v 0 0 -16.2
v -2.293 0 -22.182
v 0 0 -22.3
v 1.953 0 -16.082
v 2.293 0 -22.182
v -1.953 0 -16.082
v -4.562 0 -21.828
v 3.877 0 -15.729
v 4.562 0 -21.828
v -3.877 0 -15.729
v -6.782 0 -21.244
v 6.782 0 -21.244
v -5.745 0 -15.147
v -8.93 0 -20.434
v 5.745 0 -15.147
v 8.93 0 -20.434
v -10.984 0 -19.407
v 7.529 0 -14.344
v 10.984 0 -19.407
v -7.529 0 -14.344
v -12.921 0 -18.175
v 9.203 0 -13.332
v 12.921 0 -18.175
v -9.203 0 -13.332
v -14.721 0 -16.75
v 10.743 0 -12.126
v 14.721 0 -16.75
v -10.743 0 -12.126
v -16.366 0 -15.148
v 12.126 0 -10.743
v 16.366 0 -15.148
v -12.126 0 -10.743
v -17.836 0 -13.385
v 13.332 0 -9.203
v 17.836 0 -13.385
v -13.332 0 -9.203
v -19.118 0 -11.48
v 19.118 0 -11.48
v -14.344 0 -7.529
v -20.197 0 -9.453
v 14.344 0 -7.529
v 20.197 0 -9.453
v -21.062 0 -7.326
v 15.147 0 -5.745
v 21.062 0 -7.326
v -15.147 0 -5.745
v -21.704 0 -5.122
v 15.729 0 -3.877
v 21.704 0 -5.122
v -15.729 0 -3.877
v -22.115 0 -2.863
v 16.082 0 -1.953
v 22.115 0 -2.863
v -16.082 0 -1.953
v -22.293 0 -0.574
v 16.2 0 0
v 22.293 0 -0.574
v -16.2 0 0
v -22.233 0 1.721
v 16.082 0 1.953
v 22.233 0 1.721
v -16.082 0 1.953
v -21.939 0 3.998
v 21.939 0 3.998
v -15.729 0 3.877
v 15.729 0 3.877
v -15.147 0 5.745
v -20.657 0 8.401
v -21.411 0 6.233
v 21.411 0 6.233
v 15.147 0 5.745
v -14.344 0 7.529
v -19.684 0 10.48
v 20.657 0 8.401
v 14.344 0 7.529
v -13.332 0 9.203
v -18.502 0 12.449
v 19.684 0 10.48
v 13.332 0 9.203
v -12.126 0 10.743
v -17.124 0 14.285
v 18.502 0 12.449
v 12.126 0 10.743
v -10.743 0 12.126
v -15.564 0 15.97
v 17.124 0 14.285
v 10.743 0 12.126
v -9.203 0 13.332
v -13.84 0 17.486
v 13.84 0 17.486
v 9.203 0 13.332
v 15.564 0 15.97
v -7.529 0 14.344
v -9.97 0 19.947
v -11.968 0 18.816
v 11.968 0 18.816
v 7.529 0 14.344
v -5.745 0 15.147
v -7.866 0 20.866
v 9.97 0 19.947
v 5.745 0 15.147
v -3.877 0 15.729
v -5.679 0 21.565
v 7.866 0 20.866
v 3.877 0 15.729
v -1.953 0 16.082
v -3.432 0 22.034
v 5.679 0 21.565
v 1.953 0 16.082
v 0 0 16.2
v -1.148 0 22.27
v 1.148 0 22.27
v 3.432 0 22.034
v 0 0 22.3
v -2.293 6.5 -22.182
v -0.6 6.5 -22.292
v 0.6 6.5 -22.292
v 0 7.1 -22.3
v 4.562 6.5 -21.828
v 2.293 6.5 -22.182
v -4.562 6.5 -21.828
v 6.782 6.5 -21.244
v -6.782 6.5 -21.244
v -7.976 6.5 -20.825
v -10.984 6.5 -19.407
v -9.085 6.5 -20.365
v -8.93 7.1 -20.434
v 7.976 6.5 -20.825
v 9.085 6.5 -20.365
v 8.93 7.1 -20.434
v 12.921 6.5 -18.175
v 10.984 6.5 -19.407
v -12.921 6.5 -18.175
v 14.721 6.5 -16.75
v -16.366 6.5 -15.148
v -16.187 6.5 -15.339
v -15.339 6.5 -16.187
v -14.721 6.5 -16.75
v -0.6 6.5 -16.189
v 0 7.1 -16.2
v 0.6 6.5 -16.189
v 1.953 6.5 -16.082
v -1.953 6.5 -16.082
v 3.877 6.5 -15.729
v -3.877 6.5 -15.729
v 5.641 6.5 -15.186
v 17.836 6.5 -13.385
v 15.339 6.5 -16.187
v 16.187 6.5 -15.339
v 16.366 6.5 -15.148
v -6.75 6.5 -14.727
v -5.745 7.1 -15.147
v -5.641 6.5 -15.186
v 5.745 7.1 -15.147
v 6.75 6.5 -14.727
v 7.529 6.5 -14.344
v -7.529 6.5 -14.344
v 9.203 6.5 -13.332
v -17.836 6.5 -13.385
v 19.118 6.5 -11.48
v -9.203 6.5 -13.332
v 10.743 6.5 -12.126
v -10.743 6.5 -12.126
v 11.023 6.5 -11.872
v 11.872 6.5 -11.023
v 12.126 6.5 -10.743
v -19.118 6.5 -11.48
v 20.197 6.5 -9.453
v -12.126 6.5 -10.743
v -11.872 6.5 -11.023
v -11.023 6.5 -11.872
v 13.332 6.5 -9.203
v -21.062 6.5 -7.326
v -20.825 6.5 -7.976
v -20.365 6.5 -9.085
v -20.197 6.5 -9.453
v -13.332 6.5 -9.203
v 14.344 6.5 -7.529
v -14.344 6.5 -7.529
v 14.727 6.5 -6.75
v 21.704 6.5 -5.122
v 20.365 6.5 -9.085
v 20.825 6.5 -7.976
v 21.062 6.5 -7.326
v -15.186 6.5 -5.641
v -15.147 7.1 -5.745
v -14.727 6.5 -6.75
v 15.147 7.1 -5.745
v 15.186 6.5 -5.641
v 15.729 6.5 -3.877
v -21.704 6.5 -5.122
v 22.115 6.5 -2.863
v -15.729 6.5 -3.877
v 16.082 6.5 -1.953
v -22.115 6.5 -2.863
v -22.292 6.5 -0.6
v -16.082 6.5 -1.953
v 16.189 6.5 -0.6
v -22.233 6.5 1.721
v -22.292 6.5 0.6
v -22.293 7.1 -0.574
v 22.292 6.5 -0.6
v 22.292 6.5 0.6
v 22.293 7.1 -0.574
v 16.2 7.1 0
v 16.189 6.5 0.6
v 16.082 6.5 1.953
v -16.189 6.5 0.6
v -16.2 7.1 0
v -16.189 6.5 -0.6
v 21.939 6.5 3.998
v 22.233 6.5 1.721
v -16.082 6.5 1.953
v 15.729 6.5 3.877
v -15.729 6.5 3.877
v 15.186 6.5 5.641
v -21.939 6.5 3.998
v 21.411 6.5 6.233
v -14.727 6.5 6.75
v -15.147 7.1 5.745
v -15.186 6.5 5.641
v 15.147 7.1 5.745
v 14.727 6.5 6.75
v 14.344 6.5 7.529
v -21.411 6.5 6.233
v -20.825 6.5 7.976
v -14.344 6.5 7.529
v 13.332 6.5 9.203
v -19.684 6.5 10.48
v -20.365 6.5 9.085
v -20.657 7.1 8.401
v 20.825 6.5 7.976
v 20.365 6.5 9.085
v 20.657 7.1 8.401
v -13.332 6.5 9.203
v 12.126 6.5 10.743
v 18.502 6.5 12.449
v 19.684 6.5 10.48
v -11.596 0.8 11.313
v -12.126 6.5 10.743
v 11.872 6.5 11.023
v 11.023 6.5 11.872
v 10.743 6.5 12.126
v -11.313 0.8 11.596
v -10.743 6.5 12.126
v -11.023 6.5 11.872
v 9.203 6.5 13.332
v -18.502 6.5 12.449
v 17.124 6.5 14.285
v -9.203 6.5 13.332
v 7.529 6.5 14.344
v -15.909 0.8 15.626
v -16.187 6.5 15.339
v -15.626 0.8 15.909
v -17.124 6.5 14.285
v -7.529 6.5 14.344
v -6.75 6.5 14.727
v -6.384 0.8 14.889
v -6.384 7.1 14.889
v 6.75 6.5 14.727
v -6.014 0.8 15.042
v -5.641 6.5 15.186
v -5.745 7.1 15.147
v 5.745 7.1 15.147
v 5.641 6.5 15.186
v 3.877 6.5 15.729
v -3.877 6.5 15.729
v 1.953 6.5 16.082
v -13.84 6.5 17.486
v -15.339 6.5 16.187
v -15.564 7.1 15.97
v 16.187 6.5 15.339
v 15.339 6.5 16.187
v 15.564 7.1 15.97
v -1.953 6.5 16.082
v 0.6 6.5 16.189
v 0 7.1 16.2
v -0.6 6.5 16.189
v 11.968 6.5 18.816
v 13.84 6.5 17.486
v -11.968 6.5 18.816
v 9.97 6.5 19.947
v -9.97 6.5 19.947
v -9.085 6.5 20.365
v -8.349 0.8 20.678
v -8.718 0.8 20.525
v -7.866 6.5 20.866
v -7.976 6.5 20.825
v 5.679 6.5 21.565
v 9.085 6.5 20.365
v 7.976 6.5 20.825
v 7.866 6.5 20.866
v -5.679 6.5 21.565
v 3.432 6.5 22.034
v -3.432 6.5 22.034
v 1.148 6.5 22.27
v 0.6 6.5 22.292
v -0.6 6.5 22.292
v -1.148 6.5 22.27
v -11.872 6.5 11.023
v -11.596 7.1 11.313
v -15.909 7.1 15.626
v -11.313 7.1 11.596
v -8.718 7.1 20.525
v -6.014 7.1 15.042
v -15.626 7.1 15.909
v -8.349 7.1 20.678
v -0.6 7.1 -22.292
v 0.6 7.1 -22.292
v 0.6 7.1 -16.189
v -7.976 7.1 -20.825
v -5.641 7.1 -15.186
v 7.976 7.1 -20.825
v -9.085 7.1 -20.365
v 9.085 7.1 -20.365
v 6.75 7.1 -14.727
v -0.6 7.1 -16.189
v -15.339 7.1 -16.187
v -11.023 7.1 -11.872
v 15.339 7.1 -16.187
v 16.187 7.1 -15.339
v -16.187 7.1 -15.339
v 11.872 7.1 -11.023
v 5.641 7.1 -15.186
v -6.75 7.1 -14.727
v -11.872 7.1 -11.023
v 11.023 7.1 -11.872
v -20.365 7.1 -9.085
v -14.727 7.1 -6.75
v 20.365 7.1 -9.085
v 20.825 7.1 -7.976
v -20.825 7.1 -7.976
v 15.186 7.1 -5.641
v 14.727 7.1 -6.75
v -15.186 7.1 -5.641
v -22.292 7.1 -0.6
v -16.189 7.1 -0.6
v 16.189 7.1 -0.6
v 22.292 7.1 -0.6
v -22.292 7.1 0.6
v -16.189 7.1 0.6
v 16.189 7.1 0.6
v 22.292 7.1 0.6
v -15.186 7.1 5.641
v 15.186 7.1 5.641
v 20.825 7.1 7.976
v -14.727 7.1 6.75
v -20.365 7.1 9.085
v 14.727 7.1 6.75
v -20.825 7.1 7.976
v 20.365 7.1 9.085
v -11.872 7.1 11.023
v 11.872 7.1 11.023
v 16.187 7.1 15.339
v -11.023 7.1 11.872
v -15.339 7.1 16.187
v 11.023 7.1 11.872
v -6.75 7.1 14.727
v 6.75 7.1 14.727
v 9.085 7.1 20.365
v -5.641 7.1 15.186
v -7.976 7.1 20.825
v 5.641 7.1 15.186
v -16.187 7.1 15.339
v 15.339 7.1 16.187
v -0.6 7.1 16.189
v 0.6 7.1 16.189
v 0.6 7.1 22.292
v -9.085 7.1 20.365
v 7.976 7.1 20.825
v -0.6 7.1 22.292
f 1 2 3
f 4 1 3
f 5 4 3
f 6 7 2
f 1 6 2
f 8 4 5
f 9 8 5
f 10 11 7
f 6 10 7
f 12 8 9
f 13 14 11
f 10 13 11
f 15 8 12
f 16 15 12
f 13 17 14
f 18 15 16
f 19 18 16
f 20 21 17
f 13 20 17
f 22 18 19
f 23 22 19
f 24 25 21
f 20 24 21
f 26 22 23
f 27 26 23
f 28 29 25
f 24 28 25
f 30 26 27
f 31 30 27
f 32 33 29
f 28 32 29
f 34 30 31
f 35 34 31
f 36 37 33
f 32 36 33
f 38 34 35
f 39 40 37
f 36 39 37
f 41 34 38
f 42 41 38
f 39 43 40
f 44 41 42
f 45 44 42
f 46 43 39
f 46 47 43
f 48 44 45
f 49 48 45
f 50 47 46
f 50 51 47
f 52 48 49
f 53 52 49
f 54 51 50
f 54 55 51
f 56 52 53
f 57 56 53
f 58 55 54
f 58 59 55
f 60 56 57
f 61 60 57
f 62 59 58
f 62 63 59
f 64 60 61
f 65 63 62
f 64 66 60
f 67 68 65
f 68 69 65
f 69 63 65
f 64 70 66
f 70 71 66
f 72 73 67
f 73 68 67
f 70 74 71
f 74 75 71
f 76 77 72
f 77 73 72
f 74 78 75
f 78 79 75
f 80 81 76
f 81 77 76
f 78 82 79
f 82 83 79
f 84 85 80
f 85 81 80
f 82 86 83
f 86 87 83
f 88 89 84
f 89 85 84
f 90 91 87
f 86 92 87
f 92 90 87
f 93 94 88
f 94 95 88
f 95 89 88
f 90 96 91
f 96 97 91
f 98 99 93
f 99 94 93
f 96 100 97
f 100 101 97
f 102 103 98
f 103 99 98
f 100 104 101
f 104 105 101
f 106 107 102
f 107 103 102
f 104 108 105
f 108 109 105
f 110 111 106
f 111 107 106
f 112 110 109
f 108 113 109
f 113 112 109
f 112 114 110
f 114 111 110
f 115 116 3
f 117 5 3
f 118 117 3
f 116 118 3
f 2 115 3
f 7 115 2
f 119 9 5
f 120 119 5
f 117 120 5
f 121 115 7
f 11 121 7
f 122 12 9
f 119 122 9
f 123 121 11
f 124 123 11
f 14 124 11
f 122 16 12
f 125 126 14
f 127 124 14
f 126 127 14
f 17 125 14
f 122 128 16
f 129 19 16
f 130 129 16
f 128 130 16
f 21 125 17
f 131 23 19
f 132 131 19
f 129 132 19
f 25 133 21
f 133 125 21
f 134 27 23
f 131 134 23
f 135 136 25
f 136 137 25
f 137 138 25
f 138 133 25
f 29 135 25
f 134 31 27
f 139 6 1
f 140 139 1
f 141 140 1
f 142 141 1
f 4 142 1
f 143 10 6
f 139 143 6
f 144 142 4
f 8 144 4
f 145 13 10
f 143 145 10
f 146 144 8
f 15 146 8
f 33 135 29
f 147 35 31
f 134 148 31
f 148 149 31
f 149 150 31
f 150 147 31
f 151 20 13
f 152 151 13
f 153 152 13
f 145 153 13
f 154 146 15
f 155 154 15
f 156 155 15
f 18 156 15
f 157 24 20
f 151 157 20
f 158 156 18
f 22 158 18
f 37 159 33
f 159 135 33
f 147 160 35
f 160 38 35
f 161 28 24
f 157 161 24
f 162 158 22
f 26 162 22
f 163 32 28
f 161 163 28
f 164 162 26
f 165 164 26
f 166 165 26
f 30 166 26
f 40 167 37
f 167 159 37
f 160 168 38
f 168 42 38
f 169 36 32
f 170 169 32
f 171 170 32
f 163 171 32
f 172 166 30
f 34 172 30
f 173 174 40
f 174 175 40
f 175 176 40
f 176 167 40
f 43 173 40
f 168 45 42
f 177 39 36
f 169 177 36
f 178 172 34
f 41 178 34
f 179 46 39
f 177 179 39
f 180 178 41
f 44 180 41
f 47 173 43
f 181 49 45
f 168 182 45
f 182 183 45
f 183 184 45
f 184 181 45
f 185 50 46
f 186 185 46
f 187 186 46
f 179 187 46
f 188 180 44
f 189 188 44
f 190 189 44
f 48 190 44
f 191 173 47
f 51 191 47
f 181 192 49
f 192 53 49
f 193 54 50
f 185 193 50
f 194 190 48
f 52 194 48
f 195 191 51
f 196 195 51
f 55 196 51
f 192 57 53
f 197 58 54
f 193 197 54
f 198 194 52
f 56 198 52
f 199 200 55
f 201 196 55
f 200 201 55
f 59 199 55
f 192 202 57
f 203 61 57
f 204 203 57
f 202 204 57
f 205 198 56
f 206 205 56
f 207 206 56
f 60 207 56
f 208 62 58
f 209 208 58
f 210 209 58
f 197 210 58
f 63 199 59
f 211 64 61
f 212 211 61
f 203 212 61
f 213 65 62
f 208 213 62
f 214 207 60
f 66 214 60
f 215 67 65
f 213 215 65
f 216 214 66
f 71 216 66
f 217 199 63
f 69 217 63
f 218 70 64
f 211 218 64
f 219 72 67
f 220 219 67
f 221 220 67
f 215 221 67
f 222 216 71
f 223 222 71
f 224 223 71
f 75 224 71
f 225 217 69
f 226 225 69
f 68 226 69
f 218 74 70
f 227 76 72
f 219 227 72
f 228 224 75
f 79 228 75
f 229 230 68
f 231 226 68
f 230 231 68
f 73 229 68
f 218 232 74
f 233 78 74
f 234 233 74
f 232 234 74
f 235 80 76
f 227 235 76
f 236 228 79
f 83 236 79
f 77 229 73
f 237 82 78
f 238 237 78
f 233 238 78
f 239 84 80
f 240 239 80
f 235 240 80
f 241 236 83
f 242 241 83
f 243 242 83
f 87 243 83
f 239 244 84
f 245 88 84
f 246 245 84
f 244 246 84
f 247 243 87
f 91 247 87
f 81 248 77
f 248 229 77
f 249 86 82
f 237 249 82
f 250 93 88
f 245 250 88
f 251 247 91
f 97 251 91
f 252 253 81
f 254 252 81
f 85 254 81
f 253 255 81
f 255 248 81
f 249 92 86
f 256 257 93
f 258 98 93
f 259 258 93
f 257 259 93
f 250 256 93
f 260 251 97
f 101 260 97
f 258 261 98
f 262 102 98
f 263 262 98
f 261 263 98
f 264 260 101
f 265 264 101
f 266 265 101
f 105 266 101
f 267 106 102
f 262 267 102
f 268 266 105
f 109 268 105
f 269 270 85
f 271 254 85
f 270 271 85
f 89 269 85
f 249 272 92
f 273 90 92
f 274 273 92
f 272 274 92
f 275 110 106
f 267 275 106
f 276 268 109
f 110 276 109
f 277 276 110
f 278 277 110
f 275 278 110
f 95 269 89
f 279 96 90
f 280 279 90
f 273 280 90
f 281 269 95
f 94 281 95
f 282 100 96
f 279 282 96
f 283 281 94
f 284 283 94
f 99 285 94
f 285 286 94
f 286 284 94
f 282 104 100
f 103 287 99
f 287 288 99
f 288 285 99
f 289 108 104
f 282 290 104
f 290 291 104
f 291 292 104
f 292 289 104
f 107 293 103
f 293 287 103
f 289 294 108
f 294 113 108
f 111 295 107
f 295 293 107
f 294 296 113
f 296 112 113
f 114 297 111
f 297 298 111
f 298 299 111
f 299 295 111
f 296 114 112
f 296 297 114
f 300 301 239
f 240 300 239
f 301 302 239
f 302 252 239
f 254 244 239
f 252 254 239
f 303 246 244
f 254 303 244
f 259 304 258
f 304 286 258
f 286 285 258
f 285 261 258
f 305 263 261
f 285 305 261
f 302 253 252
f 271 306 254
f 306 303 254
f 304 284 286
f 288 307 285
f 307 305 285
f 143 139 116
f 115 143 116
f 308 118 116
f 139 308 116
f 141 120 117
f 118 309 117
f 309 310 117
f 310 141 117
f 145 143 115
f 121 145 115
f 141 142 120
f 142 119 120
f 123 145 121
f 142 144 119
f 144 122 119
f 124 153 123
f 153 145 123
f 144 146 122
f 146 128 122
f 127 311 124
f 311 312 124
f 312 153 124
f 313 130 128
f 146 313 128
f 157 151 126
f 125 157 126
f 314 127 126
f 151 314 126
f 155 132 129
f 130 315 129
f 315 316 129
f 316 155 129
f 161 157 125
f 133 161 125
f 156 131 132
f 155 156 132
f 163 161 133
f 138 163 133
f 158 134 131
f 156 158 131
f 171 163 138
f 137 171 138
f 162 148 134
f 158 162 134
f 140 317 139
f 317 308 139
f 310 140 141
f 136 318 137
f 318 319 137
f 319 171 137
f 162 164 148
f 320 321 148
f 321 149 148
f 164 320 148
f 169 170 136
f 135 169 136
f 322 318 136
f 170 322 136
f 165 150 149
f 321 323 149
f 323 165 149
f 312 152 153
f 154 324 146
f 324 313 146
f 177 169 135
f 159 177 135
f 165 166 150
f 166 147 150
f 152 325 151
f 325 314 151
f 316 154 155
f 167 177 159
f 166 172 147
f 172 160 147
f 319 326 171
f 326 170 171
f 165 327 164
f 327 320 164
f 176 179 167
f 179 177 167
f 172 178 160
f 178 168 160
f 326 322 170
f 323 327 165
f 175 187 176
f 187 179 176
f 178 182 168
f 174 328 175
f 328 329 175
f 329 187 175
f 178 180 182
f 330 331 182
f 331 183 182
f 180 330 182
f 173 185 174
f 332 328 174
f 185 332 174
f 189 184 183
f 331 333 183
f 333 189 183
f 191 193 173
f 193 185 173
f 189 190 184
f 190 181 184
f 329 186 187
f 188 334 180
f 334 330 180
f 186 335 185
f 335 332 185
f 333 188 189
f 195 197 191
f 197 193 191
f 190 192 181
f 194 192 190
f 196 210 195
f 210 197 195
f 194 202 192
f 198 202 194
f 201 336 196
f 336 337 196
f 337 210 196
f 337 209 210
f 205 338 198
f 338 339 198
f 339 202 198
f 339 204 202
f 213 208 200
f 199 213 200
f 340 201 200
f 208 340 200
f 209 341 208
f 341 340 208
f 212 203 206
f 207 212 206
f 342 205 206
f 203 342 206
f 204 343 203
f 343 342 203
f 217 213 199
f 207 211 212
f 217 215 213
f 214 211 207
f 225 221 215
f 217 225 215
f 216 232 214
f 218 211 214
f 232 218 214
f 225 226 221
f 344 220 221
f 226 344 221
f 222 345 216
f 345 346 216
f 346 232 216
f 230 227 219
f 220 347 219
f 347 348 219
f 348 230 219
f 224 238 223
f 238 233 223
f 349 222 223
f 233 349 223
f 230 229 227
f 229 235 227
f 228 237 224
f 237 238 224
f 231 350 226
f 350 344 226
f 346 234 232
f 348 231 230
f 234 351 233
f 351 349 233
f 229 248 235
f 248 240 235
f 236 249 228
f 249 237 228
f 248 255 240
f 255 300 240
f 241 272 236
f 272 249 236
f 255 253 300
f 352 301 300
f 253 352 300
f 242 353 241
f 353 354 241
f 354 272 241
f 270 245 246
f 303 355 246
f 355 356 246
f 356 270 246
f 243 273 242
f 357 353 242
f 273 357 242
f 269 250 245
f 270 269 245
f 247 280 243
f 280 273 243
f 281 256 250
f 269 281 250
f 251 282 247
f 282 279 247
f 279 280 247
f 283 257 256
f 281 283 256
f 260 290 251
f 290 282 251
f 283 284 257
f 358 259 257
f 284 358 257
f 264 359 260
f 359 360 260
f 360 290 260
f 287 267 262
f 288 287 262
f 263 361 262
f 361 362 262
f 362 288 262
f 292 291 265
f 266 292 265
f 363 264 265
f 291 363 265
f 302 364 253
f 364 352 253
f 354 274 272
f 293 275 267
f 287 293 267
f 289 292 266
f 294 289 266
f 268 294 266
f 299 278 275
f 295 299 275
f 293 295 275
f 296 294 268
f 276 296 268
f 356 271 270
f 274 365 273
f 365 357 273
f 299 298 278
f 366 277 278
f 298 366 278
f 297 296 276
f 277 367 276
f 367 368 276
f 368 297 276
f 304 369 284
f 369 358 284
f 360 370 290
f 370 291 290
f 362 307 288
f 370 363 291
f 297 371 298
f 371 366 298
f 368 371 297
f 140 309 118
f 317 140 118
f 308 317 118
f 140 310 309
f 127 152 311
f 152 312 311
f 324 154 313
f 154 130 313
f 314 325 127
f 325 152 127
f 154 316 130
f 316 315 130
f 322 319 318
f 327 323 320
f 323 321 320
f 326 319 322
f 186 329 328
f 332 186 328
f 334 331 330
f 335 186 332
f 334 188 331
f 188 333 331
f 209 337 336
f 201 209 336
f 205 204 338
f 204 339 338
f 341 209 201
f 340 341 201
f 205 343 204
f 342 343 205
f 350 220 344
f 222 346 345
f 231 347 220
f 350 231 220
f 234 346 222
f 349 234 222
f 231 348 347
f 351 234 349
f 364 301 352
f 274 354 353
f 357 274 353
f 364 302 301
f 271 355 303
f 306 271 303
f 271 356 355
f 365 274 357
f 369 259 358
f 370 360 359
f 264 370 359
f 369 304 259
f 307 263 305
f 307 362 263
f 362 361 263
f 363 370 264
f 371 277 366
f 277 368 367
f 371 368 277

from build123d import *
from build123d.topology import SkipClean

# Parameters (mm, degrees)
SKETCH1_R           = 22.3
SKETCH1_R_2         = 16.2
BOSS_EXTRUDE1_DEPTH = 6.5
BOSS_EXTRUDE2_DEPTH = 0.6
CIRPATTERN1_COUNT   = 16
CUT_EXTRUDE1_START  = -6.3
CUT_EXTRUDE1_DEPTH  = 6.3


with BuildPart() as part:
    # Sketch1 → Boss-Extrude1 (new body)
    with BuildSketch(Plane(origin=(0, 0, 0), x_dir=(1, 0, 0), z_dir=(0, 1, 0))):
        with Locations(Location((0, 0, 0), (0, 0, 90))):
            Circle(SKETCH1_R)
        with Locations(Location((0, 0, 0), (0, 0, 90))):
            Circle(SKETCH1_R_2, mode=Mode.SUBTRACT)
    extrude(amount=BOSS_EXTRUDE1_DEPTH)

    # Sketch2 → Boss-Extrude2 (add)
    with BuildSketch(Plane(origin=(0, 6.5, 0), x_dir=(1, 0, 0), z_dir=(0, 1, 0))):
        with BuildLine():
            ThreePointArc((0.6, 22.29192679), (0, 22.3), (-0.6, 22.29192679))
            Line((-0.6, 22.29192679), (-0.6, 16.188885076))
            ThreePointArc((-0.6, 16.188885076), (0, 16.2), (0.6, 16.188885076))
            Line((0.6, 16.188885076), (0.6, 22.29192679))
        make_face()
    boss_extrude2 = extrude(amount=BOSS_EXTRUDE2_DEPTH)

    # CirPattern1: Boss-Extrude2 ×16 about axis
    with SkipClean():  # the faces are left unmerged after this step: merging them gives an invalid solid
        cirpattern1_axis = Axis((0, 0, 0), (0, 1, 0))
        for i in range(1, CIRPATTERN1_COUNT):
            add(boss_extrude2.rotate(cirpattern1_axis, i * 360 / CIRPATTERN1_COUNT))

    # Sketch3 → Cut-Extrude1 (cut)
    with SkipClean():  # the faces are left unmerged after this step: merging them gives an invalid solid
        with BuildSketch(Plane(origin=(0, 7.1, 0), x_dir=(1, 0, 0), z_dir=(0, 1, 0)).offset(CUT_EXTRUDE1_START)):
            with BuildLine():
                Line((-15.909268387, -15.626425675), (-11.595678207, -11.312835494))
                ThreePointArc((-11.595678207, -11.312835494), (-11.455129855, -11.455129855), (-11.312835494, -11.595678207))
                Line((-11.312835494, -11.595678207), (-15.626425675, -15.909268387))
                ThreePointArc((-15.626425675, -15.909268387), (-15.76848122, -15.76848122), (-15.909268387, -15.626425675))
            make_face()
            with BuildLine():
                Line((-6.014223231, -15.042244478), (-8.348721414, -20.678221653))
                ThreePointArc((-8.348721414, -20.678221653), (-8.533840542, -20.602513575), (-8.718273228, -20.52514828))
                Line((-8.718273228, -20.52514828), (-6.383775044, -14.889171105))
                ThreePointArc((-6.383775044, -14.889171105), (-6.199471604, -14.966848427), (-6.014223231, -15.042244478))
            make_face()
        extrude(amount=CUT_EXTRUDE1_DEPTH, mode=Mode.SUBTRACT)


solid = part.part
